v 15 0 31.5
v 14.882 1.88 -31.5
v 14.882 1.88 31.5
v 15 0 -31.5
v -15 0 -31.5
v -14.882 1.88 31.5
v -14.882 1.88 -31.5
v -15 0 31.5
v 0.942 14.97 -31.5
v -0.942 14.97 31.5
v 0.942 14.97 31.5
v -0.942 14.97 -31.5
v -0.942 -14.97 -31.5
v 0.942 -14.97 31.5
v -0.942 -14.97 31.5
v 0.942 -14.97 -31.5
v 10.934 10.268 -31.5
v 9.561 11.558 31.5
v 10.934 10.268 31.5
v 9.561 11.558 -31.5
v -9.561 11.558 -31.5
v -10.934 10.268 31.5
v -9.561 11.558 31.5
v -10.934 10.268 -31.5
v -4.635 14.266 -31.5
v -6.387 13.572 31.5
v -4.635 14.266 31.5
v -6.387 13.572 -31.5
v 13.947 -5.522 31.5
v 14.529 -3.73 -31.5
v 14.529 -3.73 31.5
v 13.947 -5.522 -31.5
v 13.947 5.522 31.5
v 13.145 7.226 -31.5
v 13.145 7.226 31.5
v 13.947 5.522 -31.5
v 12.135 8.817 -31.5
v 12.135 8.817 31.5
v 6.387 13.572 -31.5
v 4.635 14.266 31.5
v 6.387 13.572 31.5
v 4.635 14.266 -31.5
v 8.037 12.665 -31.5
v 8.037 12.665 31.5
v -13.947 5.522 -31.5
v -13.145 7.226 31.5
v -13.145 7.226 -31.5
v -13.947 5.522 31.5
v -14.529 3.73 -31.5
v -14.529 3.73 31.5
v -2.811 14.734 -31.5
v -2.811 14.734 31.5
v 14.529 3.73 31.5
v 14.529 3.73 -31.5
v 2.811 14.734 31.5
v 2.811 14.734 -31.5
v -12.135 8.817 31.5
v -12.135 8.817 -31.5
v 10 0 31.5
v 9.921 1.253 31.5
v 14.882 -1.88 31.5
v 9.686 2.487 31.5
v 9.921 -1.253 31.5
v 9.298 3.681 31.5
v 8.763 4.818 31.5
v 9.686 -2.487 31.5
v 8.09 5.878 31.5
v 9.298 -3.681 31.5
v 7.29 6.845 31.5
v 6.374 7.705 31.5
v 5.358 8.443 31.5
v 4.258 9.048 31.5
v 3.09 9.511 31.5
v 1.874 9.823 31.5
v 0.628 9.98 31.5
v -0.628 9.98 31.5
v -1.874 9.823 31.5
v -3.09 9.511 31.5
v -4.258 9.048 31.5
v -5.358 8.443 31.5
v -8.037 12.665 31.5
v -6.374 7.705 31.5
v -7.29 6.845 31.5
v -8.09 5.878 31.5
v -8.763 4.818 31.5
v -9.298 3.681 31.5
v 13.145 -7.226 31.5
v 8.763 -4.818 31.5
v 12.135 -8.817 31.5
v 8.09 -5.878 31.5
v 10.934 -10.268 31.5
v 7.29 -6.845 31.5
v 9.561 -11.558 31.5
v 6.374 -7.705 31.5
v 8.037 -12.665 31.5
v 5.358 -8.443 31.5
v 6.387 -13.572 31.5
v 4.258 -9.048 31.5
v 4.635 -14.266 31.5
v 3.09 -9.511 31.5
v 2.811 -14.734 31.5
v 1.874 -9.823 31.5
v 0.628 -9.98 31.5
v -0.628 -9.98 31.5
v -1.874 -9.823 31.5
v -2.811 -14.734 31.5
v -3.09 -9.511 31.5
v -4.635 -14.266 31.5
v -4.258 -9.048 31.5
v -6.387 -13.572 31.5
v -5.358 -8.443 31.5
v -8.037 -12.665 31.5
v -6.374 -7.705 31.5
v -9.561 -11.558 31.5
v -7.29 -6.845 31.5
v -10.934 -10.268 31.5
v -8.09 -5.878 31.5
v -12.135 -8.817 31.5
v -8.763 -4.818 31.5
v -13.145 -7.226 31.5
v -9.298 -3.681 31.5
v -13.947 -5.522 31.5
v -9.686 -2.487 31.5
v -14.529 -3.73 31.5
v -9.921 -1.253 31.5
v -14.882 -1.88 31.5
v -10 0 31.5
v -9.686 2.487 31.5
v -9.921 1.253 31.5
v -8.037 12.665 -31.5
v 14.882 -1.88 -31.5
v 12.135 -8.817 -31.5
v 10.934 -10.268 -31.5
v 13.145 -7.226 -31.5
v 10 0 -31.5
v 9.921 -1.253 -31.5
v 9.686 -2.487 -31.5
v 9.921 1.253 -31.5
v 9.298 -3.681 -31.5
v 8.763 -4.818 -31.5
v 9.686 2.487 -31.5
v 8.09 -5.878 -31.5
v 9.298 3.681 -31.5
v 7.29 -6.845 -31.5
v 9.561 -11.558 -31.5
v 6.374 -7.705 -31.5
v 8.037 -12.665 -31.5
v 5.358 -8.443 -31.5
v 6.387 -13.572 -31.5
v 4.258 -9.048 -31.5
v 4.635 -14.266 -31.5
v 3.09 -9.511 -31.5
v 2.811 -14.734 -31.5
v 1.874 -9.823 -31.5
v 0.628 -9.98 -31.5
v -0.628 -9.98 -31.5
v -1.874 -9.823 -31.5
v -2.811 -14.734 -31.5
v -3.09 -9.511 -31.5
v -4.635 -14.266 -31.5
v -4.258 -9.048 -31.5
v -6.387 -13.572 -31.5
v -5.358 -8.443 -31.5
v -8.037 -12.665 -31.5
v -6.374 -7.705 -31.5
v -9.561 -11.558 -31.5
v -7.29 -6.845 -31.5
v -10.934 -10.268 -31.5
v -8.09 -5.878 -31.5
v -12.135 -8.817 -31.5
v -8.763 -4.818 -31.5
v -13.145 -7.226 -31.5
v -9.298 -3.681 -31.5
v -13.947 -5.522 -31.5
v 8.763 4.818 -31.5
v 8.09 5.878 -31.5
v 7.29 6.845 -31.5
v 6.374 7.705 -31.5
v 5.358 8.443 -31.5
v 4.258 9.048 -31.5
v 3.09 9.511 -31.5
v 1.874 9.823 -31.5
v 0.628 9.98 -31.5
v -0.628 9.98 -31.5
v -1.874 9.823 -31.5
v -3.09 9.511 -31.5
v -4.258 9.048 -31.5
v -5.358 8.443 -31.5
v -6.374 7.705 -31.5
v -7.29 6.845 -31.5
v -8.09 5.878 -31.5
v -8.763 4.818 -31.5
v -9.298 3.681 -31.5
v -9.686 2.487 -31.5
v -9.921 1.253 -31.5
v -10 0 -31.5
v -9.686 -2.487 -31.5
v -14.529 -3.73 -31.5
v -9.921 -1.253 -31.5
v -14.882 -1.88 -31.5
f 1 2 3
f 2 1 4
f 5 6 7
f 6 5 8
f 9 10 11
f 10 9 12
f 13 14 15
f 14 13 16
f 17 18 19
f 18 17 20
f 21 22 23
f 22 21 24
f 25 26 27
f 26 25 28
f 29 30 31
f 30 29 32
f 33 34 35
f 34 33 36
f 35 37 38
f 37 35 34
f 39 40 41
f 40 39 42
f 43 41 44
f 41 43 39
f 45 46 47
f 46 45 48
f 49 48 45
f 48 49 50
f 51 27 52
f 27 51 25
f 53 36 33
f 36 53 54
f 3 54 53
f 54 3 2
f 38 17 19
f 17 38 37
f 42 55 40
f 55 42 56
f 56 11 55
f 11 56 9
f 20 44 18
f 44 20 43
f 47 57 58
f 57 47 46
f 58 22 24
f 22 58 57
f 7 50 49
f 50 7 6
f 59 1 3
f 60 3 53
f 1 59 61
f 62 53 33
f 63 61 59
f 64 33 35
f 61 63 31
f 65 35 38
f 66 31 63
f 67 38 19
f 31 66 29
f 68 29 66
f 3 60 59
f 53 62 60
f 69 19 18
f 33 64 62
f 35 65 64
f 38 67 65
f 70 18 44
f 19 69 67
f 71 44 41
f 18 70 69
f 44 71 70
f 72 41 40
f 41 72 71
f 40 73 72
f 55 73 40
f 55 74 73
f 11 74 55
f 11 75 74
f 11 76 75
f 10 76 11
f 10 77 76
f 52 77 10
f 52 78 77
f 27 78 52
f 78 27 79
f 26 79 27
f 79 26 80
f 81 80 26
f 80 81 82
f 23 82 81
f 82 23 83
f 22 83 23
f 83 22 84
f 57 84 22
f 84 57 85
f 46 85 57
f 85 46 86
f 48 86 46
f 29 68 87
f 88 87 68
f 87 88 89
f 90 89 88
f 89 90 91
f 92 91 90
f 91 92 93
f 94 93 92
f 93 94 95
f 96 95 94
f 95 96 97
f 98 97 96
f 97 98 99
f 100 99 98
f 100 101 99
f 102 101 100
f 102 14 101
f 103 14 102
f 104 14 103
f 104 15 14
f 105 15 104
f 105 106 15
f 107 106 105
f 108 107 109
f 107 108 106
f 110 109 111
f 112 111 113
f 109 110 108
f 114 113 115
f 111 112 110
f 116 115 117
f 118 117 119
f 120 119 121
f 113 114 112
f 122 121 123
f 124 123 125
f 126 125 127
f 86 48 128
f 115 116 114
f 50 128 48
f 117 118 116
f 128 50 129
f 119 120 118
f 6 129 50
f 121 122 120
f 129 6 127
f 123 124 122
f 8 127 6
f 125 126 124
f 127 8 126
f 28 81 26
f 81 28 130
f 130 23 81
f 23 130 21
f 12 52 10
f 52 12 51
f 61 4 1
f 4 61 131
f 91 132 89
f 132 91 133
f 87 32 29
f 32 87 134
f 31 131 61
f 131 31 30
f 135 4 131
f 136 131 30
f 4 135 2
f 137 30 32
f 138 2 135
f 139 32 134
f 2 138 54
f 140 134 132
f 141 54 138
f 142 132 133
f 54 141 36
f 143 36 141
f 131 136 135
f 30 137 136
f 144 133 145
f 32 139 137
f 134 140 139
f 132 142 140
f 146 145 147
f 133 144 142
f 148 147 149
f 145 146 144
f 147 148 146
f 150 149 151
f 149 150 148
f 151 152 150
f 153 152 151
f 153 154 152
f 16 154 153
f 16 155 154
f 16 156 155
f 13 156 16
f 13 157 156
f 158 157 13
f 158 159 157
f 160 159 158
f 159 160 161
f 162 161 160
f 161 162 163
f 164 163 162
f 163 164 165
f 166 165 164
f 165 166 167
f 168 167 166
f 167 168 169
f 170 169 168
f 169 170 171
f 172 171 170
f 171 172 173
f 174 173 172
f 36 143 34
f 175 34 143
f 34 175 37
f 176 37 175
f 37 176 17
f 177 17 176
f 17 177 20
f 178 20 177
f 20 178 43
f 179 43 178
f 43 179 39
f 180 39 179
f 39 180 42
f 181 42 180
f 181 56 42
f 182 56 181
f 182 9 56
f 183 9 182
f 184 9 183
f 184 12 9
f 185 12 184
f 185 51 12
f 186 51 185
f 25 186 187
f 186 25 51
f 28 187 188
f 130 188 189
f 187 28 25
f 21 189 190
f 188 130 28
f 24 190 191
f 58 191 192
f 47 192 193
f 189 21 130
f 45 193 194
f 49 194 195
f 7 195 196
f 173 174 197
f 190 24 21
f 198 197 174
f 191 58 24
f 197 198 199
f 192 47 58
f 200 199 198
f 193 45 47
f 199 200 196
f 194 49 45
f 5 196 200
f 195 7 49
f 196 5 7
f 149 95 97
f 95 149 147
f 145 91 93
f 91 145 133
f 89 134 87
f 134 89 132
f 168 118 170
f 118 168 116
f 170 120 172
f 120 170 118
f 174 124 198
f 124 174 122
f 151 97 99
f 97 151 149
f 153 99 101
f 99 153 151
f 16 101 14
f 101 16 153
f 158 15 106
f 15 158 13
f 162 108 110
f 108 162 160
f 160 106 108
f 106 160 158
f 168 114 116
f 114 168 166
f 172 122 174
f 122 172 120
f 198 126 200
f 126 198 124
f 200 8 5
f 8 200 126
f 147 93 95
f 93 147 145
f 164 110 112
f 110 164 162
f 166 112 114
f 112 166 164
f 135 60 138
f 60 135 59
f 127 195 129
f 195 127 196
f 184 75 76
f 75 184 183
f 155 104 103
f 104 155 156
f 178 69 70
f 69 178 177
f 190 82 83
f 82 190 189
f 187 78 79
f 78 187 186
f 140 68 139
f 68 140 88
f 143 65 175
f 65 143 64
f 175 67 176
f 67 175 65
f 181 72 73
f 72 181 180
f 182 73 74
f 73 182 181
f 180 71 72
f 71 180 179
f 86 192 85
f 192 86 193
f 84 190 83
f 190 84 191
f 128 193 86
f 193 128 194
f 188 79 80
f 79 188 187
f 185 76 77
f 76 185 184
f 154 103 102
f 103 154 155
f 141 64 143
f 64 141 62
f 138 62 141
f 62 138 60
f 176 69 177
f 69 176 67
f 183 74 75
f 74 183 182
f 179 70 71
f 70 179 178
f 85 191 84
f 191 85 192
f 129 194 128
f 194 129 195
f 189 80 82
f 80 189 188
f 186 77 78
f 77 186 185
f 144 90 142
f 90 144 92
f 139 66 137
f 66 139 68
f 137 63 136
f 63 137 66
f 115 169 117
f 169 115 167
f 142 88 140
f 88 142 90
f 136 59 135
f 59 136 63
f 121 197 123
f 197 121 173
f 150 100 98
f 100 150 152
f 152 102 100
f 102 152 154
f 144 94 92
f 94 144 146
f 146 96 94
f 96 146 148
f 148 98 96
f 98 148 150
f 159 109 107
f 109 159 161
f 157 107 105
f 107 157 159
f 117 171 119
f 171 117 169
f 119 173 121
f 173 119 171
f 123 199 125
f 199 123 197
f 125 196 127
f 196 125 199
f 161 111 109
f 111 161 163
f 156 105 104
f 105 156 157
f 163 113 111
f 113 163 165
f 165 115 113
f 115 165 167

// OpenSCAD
$fn = 50;


difference() {
	union() {
		translate(v = [0, 0, -31.5000000000]) {
			cylinder(h = 63, r = 15.0000000000);
		}
	}
	union() {
		translate(v = [0, 0, -100.0000000000]) {
			cylinder(h = 200, r = 10);
		}
	}
}
